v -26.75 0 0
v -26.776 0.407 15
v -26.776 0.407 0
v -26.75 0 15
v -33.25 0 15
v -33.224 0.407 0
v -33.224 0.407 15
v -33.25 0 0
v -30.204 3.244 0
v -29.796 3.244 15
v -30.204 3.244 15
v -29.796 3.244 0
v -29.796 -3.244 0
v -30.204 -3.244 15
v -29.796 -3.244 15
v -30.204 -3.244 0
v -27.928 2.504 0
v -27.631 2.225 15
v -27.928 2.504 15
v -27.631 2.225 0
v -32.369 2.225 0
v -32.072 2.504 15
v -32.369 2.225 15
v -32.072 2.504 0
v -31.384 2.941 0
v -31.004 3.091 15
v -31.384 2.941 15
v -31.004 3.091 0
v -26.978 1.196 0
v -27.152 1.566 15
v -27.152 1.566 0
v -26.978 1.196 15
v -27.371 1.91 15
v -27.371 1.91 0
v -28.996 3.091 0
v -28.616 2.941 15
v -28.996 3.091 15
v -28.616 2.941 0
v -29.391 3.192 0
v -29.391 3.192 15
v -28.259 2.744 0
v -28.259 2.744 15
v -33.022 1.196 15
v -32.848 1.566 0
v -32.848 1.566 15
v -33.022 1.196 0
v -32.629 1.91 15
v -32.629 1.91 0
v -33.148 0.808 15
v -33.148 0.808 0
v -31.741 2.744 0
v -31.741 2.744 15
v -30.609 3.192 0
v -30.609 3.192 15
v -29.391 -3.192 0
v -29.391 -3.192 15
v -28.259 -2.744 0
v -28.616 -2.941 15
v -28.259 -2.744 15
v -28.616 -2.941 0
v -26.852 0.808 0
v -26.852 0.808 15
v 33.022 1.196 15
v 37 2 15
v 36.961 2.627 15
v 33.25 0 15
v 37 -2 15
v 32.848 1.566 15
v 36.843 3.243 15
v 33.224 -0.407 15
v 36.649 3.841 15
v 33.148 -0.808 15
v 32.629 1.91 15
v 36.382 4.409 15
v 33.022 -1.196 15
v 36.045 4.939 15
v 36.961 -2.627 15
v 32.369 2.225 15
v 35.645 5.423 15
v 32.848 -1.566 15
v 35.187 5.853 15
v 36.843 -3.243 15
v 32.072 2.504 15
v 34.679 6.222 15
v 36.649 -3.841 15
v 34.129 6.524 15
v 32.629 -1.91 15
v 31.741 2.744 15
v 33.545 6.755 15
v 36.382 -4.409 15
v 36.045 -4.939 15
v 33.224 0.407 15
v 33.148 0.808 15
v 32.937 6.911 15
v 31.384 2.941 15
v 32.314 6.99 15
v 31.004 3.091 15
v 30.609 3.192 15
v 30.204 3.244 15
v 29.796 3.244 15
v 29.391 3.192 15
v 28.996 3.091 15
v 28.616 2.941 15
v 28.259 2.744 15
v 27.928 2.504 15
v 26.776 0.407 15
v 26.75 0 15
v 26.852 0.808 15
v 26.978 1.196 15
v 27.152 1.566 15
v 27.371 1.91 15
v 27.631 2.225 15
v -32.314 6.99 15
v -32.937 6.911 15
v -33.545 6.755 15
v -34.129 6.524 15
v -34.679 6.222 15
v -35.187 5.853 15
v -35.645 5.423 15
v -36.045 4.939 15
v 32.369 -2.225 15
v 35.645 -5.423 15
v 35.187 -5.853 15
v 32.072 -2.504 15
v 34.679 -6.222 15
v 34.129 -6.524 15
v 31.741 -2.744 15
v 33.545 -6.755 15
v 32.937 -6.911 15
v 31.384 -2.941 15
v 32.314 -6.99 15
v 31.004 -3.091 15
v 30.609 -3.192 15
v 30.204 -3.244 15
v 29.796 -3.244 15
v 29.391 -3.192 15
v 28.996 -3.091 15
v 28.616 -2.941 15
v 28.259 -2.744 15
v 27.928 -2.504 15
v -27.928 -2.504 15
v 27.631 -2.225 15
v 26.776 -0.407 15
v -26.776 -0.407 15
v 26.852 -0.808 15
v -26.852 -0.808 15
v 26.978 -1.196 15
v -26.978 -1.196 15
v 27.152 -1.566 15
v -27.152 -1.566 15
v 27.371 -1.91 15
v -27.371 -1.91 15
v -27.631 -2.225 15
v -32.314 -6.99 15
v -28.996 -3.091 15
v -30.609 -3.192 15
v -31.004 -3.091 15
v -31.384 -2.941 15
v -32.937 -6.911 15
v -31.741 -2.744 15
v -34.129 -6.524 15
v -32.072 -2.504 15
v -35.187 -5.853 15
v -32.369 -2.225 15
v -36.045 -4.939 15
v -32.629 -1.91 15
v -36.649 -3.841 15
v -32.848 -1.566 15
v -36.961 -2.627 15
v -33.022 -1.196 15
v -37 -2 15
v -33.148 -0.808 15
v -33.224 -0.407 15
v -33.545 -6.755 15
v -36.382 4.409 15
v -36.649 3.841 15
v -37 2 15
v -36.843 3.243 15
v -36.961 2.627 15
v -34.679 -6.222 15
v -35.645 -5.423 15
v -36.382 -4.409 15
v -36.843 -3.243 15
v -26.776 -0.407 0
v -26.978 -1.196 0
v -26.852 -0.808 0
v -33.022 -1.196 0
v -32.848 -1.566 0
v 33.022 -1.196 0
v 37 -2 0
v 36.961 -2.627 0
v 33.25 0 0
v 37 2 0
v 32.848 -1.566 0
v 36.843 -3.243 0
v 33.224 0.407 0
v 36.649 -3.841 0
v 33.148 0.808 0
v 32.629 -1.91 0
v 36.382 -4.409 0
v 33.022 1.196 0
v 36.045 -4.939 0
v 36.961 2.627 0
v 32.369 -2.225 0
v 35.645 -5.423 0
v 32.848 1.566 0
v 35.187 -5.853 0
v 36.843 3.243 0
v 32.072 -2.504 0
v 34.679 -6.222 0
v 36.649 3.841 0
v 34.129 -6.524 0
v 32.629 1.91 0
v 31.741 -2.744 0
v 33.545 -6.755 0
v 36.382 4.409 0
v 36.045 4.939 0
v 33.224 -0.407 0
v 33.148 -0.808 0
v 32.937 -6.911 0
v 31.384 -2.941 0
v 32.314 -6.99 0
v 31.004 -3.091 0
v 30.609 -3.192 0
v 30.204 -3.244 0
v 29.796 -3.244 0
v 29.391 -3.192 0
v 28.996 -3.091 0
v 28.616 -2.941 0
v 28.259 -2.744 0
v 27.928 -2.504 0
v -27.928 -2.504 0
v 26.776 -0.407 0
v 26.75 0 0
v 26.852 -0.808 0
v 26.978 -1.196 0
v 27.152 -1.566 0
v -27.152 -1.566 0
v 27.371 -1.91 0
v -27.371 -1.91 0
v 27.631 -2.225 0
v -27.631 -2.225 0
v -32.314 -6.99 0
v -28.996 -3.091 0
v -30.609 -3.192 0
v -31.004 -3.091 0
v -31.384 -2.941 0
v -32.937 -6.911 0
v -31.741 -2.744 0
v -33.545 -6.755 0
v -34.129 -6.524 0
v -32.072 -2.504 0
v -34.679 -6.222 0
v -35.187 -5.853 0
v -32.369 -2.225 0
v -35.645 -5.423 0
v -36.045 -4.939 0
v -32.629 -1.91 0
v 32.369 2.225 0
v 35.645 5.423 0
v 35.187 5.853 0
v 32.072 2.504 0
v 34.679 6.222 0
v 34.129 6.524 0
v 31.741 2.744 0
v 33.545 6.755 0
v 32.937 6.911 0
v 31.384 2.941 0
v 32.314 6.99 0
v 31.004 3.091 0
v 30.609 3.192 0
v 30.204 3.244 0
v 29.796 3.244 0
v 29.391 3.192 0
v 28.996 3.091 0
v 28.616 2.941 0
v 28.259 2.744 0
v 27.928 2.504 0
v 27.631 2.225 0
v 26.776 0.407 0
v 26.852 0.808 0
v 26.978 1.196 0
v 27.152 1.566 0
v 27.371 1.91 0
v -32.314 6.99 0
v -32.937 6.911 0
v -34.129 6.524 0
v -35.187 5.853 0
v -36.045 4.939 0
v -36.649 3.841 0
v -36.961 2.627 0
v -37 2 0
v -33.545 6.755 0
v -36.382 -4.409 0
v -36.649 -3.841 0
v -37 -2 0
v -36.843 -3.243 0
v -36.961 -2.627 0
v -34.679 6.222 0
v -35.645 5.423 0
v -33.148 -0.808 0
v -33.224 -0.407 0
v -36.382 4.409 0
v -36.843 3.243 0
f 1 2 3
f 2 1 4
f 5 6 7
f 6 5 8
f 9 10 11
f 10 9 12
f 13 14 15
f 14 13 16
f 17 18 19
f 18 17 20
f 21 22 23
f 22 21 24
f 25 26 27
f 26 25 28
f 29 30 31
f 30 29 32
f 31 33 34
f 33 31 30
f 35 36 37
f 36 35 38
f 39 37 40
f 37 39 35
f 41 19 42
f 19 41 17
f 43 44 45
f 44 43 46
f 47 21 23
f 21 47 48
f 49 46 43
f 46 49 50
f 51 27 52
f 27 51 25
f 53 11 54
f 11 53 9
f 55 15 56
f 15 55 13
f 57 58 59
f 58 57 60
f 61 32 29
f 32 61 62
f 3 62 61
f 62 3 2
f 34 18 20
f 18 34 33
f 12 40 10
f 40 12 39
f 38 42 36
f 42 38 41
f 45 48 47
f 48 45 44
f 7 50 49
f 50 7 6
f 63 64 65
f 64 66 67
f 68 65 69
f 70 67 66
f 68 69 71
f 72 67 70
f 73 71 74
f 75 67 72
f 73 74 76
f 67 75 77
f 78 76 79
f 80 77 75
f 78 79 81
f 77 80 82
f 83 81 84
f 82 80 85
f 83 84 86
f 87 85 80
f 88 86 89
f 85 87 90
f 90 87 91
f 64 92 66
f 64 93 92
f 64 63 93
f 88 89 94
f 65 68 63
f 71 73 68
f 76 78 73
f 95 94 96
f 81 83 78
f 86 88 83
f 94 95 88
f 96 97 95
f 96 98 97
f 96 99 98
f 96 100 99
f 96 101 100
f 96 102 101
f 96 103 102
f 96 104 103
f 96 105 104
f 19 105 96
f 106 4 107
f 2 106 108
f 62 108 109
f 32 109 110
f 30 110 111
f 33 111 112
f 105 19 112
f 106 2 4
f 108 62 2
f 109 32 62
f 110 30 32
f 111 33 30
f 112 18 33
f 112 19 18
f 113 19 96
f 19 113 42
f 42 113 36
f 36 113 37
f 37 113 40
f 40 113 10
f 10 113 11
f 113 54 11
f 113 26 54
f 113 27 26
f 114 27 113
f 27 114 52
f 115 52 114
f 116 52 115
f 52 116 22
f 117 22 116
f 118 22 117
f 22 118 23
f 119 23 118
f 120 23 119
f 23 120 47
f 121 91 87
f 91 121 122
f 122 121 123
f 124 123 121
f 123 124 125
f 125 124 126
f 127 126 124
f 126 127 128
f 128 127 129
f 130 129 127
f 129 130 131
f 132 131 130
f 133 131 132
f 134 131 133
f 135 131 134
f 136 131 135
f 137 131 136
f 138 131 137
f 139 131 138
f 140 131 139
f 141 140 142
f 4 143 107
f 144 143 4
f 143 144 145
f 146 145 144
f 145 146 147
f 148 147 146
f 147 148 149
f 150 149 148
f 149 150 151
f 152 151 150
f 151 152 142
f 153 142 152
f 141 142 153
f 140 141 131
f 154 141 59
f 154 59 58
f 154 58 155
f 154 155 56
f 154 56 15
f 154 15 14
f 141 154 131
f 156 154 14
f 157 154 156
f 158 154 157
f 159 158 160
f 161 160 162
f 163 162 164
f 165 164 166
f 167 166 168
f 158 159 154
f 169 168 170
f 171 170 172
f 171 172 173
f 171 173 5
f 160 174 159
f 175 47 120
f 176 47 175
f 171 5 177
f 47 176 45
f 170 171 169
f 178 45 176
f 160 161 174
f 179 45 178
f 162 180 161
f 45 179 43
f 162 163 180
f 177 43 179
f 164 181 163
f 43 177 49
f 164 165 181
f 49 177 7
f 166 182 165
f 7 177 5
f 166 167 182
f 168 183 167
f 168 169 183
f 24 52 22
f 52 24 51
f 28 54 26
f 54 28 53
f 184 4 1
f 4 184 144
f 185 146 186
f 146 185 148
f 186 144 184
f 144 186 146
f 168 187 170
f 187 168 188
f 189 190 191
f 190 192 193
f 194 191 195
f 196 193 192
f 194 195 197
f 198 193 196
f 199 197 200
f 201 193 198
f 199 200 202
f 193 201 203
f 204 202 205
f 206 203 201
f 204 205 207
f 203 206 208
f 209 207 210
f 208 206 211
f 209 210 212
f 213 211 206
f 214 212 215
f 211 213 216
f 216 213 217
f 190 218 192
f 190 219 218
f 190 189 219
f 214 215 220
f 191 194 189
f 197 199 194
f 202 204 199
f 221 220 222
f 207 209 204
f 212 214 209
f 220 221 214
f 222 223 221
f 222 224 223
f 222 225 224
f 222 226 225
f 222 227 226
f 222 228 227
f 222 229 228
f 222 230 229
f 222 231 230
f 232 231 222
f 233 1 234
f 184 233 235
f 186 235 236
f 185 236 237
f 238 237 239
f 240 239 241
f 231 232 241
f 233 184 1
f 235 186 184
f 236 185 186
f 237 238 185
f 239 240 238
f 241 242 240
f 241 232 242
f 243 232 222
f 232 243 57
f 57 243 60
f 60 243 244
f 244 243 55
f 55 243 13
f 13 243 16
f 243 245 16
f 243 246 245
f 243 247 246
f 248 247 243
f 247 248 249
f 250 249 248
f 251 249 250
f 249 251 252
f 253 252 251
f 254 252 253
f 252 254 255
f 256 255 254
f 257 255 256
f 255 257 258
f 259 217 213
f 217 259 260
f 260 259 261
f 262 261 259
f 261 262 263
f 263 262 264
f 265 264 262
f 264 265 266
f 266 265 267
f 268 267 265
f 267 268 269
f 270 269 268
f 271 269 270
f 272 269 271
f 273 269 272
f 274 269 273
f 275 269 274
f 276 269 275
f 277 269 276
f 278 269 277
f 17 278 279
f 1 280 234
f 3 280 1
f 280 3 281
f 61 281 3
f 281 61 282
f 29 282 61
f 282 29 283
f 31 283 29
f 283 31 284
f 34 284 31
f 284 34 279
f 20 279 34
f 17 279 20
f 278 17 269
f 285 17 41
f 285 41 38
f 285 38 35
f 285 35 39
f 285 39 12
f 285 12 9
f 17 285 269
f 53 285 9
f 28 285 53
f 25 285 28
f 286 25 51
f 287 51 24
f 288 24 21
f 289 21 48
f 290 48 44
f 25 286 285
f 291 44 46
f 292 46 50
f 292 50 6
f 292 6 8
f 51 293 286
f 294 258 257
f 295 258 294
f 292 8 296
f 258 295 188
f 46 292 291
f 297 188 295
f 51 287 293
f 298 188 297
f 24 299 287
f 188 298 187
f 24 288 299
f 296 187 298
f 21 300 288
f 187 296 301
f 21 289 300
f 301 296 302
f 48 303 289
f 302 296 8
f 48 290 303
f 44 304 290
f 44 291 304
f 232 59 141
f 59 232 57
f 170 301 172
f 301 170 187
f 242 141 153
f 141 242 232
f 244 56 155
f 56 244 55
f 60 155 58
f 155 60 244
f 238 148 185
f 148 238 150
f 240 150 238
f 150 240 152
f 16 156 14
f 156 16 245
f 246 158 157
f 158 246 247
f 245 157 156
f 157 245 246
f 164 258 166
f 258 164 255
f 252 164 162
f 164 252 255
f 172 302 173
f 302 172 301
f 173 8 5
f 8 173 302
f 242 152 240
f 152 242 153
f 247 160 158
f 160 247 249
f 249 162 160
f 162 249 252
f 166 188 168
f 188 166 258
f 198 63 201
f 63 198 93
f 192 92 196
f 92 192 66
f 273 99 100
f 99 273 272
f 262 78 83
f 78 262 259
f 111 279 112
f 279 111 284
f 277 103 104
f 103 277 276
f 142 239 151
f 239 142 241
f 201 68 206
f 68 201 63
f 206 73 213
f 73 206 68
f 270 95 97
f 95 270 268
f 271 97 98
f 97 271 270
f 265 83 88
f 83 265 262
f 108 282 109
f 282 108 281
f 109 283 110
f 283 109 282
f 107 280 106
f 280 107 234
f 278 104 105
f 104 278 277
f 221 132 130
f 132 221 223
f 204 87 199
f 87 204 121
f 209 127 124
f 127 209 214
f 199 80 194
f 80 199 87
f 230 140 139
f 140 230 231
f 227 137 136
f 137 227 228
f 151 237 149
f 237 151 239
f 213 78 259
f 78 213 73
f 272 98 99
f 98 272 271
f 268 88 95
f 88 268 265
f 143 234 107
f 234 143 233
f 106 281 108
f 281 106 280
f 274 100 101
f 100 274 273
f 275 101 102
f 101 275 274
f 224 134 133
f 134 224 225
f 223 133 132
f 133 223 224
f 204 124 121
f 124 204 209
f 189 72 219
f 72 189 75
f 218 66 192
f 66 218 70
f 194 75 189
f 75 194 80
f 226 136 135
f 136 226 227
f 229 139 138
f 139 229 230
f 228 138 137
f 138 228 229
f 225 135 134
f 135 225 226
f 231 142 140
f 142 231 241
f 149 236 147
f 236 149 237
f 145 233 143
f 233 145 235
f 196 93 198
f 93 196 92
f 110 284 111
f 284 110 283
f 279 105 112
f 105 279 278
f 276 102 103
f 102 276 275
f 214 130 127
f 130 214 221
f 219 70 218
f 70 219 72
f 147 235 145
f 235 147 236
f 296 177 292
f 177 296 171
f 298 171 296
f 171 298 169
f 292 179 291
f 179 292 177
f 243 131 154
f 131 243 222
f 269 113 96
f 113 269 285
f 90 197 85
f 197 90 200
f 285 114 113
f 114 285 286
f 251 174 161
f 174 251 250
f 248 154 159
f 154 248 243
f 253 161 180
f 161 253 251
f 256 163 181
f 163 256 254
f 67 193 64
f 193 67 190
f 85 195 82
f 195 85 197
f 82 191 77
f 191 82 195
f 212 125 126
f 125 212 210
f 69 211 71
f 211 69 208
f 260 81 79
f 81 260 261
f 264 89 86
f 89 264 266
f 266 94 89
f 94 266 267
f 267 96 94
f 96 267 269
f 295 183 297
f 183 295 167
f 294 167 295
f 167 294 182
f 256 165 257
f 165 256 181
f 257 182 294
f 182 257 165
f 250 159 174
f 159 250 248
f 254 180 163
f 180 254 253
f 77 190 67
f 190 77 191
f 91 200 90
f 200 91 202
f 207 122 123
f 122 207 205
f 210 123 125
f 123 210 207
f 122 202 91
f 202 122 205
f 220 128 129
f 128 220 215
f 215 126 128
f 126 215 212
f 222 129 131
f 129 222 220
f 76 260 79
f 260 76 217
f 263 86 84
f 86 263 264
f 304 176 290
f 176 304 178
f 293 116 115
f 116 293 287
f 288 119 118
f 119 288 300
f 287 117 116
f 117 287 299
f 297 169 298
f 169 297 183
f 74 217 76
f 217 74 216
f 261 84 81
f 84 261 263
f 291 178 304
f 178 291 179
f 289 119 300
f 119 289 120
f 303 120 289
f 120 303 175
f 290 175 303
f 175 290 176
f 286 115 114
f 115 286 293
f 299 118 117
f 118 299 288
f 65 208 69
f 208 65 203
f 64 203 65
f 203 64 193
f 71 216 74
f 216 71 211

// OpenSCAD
$fn = 50;


difference() {
	union() {
		hull() {
			translate(v = [-32.0000000000, 2.0000000000, 0]) {
				cylinder(h = 15, r = 5);
			}
			translate(v = [32.0000000000, 2.0000000000, 0]) {
				cylinder(h = 15, r = 5);
			}
			translate(v = [-32.0000000000, -2.0000000000, 0]) {
				cylinder(h = 15, r = 5);
			}
			translate(v = [32.0000000000, -2.0000000000, 0]) {
				cylinder(h = 15, r = 5);
			}
		}
	}
	union() {
		translate(v = [-30.0000000000, 0.0000000000, 0]) {
			cylinder(h = 15, r = 3.2500000000);
		}
		translate(v = [30.0000000000, 0.0000000000, 0]) {
			cylinder(h = 15, r = 3.2500000000);
		}
		translate(v = [-30.0000000000, 0.0000000000, 0]) {
			cylinder(h = 15, r = 1.8000000000);
		}
		translate(v = [30.0000000000, 0.0000000000, 0]) {
			cylinder(h = 15, r = 1.8000000000);
		}
		translate(v = [-30.0000000000, 0.0000000000, 0]) {
			cylinder(h = 15, r = 1.8000000000);
		}
		translate(v = [30.0000000000, 0.0000000000, 0]) {
			cylinder(h = 15, r = 1.8000000000);
		}
		translate(v = [-30.0000000000, 0.0000000000, 0]) {
			cylinder(h = 15, r = 1.8000000000);
		}
		translate(v = [30.0000000000, 0.0000000000, 0]) {
			cylinder(h = 15, r = 1.8000000000);
		}
	}
}
